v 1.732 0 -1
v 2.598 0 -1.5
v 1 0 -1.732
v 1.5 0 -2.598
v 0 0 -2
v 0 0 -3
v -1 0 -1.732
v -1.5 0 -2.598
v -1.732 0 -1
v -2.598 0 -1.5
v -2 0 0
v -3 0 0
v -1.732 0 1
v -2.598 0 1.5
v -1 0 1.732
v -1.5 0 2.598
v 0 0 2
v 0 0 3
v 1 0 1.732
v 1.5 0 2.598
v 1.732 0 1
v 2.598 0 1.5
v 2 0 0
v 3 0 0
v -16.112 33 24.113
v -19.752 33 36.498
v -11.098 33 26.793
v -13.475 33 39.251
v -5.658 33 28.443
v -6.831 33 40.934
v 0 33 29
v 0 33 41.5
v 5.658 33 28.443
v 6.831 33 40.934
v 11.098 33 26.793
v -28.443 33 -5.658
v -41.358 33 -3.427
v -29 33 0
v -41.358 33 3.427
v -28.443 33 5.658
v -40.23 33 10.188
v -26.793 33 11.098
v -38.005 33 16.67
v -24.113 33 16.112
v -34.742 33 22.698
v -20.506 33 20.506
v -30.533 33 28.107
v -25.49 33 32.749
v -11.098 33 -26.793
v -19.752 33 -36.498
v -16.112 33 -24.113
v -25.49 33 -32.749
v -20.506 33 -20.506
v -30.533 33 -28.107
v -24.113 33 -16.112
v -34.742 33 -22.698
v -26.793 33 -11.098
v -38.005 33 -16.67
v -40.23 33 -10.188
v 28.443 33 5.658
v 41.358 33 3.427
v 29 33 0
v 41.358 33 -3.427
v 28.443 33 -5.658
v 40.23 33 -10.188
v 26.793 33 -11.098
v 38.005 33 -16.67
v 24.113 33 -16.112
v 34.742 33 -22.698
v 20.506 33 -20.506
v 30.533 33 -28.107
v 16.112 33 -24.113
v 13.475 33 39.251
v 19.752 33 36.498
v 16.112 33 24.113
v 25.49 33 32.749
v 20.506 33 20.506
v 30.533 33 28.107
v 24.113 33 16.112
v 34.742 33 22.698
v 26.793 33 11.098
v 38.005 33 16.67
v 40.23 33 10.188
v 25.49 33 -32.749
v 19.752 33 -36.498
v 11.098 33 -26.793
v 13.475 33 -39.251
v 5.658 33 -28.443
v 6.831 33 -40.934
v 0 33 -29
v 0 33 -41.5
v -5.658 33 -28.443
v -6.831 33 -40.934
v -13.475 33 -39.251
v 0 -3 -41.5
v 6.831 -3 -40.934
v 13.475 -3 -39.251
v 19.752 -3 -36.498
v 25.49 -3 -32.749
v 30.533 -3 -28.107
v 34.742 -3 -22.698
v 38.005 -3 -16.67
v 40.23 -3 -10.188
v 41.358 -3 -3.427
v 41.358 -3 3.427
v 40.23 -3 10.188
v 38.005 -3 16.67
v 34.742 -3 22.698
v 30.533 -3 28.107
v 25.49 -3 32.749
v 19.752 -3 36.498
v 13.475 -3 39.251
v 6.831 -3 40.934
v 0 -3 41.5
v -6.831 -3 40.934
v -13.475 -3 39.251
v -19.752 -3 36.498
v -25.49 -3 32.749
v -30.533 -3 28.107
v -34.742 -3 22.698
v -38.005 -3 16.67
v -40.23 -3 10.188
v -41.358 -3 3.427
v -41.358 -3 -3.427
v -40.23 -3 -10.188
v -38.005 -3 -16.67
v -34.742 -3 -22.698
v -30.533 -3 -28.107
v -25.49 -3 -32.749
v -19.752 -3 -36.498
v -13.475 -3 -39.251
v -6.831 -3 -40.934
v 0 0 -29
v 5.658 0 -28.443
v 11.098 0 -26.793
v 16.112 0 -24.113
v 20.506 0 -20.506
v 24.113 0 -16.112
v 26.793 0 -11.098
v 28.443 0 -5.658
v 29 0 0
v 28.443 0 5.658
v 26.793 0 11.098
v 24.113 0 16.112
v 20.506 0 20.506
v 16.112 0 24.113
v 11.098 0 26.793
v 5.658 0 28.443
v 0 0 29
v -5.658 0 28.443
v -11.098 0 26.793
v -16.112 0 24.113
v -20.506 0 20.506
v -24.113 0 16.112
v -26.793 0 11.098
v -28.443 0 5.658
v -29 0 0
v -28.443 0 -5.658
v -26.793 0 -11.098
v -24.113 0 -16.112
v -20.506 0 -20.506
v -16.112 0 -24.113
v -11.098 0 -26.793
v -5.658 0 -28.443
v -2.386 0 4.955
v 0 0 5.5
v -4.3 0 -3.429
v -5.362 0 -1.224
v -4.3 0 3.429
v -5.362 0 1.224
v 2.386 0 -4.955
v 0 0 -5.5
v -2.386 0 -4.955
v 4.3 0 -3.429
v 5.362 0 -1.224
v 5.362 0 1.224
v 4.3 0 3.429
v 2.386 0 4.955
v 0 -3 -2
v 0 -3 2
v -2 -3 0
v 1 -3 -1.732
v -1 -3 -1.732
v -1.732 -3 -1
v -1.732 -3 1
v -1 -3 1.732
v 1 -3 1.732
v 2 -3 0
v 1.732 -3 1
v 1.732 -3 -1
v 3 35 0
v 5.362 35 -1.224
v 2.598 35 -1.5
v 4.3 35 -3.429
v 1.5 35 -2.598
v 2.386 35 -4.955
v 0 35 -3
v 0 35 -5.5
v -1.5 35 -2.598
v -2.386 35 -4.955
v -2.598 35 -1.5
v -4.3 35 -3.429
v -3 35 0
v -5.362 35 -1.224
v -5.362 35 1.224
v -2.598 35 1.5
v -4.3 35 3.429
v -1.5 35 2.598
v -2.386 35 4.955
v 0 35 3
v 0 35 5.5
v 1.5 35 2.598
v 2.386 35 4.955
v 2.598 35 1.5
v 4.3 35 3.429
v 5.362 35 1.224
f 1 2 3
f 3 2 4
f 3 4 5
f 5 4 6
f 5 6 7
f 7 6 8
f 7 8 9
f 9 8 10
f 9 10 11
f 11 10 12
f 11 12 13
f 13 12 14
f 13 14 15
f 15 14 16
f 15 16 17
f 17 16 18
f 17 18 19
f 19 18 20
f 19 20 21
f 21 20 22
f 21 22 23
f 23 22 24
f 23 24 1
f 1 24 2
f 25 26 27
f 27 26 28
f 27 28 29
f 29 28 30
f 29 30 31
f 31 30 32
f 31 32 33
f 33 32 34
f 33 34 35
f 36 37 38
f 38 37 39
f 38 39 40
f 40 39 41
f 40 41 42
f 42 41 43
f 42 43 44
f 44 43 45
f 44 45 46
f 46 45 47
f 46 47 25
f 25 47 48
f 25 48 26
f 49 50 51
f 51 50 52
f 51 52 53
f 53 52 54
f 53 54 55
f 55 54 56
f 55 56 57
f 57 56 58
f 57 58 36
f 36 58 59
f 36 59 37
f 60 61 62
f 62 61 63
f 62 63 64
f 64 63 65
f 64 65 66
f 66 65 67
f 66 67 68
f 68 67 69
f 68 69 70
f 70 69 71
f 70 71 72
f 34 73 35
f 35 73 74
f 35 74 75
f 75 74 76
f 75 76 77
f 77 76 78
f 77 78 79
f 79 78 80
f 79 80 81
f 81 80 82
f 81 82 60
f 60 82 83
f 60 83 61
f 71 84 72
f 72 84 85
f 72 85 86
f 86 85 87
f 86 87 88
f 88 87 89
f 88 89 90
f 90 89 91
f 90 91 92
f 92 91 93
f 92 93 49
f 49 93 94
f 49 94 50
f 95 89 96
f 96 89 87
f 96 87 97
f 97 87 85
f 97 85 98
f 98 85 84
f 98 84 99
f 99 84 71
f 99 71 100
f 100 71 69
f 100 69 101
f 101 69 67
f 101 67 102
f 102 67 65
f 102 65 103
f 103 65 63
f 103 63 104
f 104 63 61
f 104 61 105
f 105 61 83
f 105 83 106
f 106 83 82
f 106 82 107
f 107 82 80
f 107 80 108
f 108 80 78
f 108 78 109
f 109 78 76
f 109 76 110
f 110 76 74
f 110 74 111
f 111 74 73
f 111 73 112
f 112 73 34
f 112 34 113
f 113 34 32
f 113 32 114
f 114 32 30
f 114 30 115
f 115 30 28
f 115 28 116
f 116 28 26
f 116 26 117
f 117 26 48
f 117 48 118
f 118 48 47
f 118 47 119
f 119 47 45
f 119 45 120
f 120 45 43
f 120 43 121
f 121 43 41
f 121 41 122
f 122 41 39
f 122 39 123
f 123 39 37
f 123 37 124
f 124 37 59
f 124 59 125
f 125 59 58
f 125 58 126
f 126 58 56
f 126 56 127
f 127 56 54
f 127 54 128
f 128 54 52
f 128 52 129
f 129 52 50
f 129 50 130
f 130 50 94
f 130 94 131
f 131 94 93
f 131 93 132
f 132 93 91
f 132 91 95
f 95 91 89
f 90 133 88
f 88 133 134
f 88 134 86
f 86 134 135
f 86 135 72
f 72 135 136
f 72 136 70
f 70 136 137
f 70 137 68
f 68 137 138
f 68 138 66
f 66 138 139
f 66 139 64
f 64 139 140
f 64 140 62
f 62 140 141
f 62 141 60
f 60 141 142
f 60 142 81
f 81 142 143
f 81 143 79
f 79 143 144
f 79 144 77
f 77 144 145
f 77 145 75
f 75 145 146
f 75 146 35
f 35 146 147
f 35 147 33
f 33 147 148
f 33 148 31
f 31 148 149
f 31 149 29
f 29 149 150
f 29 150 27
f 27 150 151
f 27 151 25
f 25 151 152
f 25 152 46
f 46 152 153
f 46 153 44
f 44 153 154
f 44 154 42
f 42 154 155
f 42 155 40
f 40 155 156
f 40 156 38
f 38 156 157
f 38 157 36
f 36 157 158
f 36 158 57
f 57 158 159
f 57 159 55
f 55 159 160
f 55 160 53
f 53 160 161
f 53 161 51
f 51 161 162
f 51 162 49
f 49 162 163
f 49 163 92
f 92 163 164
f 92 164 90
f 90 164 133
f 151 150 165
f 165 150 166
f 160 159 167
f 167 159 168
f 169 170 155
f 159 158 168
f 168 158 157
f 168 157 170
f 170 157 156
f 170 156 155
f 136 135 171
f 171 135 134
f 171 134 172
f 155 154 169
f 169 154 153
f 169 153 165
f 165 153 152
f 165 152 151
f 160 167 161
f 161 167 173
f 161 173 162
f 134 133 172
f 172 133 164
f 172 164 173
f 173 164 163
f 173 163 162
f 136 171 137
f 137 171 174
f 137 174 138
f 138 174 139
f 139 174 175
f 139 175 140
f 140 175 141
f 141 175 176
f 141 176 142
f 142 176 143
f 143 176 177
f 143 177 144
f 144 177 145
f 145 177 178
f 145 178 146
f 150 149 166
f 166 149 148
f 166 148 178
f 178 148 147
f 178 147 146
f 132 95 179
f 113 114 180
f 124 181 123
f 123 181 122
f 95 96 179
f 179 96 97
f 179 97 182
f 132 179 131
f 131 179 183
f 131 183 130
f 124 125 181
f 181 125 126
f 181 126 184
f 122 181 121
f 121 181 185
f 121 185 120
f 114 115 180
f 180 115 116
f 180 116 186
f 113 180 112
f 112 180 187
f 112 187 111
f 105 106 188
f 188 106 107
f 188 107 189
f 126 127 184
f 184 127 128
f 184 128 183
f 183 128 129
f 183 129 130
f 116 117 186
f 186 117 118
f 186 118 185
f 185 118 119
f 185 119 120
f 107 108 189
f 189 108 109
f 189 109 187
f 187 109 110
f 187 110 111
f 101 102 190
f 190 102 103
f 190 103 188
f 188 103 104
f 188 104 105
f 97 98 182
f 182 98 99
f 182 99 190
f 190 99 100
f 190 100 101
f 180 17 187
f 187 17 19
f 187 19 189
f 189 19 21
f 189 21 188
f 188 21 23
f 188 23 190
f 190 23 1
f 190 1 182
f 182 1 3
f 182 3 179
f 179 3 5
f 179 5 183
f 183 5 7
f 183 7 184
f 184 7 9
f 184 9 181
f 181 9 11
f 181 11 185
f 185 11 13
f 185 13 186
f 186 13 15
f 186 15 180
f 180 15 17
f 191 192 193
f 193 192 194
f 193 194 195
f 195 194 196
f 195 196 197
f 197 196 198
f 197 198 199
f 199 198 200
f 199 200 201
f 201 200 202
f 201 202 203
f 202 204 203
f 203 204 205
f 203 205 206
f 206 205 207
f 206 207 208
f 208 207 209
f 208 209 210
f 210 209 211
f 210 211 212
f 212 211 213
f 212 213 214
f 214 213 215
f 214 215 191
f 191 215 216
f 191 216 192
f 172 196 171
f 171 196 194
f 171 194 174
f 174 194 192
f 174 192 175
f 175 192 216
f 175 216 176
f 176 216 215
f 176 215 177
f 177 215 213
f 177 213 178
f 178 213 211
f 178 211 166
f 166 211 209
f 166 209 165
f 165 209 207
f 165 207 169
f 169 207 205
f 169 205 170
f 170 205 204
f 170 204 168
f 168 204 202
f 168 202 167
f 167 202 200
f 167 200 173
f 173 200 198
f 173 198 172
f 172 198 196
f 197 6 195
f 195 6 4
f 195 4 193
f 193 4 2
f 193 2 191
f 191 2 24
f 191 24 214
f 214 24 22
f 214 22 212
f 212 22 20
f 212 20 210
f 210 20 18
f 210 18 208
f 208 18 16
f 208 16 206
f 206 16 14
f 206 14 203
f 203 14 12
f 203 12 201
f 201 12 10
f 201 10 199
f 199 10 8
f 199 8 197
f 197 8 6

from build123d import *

# Parameters (mm, degrees)
SKETCH_1_R          = 41.5
SKETCH_1_R_2        = 29
EXTRUDE_1_DEPTH     = 33
SKETCH_2_R          = 41.5
EXTRUDE_2_DEPTH     = 3
SKETCH_3_R          = 2
CUT_EXTRUDE_1_DEPTH = 4
SKETCH_4_R          = 5.5
SKETCH_4_R_2        = 3
EXTRUDE_3_DEPTH     = 35


with BuildPart() as part:
    # 草图1 → 凸台-拉伸1 (new body)
    with BuildSketch(Plane(origin=(0, 0, 0), x_dir=(1, 0, 0), z_dir=(0, 1, 0))):
        Circle(SKETCH_1_R)
        Circle(SKETCH_1_R_2, mode=Mode.SUBTRACT)
    extrude(amount=EXTRUDE_1_DEPTH)

    # 草图2 → 凸台-拉伸2 (add)
    with BuildSketch(Plane.XZ):
        Circle(SKETCH_2_R)
    extrude(amount=EXTRUDE_2_DEPTH)

    # 草图3 → 切除-拉伸1 (cut, through all)
    with BuildSketch(Plane(origin=(0, 0, 0), x_dir=(1, 0, 0), z_dir=(0, 1, 0))):
        Circle(SKETCH_3_R)
    extrude(amount=-CUT_EXTRUDE_1_DEPTH, mode=Mode.SUBTRACT)

    # 草图4 → 凸台-拉伸3 (add)
    with BuildSketch(Plane(origin=(0, 0, 0), x_dir=(1, 0, 0), z_dir=(0, 1, 0))):
        Circle(SKETCH_4_R)
        Circle(SKETCH_4_R_2, mode=Mode.SUBTRACT)
    extrude(amount=EXTRUDE_3_DEPTH)


solid = part.part
